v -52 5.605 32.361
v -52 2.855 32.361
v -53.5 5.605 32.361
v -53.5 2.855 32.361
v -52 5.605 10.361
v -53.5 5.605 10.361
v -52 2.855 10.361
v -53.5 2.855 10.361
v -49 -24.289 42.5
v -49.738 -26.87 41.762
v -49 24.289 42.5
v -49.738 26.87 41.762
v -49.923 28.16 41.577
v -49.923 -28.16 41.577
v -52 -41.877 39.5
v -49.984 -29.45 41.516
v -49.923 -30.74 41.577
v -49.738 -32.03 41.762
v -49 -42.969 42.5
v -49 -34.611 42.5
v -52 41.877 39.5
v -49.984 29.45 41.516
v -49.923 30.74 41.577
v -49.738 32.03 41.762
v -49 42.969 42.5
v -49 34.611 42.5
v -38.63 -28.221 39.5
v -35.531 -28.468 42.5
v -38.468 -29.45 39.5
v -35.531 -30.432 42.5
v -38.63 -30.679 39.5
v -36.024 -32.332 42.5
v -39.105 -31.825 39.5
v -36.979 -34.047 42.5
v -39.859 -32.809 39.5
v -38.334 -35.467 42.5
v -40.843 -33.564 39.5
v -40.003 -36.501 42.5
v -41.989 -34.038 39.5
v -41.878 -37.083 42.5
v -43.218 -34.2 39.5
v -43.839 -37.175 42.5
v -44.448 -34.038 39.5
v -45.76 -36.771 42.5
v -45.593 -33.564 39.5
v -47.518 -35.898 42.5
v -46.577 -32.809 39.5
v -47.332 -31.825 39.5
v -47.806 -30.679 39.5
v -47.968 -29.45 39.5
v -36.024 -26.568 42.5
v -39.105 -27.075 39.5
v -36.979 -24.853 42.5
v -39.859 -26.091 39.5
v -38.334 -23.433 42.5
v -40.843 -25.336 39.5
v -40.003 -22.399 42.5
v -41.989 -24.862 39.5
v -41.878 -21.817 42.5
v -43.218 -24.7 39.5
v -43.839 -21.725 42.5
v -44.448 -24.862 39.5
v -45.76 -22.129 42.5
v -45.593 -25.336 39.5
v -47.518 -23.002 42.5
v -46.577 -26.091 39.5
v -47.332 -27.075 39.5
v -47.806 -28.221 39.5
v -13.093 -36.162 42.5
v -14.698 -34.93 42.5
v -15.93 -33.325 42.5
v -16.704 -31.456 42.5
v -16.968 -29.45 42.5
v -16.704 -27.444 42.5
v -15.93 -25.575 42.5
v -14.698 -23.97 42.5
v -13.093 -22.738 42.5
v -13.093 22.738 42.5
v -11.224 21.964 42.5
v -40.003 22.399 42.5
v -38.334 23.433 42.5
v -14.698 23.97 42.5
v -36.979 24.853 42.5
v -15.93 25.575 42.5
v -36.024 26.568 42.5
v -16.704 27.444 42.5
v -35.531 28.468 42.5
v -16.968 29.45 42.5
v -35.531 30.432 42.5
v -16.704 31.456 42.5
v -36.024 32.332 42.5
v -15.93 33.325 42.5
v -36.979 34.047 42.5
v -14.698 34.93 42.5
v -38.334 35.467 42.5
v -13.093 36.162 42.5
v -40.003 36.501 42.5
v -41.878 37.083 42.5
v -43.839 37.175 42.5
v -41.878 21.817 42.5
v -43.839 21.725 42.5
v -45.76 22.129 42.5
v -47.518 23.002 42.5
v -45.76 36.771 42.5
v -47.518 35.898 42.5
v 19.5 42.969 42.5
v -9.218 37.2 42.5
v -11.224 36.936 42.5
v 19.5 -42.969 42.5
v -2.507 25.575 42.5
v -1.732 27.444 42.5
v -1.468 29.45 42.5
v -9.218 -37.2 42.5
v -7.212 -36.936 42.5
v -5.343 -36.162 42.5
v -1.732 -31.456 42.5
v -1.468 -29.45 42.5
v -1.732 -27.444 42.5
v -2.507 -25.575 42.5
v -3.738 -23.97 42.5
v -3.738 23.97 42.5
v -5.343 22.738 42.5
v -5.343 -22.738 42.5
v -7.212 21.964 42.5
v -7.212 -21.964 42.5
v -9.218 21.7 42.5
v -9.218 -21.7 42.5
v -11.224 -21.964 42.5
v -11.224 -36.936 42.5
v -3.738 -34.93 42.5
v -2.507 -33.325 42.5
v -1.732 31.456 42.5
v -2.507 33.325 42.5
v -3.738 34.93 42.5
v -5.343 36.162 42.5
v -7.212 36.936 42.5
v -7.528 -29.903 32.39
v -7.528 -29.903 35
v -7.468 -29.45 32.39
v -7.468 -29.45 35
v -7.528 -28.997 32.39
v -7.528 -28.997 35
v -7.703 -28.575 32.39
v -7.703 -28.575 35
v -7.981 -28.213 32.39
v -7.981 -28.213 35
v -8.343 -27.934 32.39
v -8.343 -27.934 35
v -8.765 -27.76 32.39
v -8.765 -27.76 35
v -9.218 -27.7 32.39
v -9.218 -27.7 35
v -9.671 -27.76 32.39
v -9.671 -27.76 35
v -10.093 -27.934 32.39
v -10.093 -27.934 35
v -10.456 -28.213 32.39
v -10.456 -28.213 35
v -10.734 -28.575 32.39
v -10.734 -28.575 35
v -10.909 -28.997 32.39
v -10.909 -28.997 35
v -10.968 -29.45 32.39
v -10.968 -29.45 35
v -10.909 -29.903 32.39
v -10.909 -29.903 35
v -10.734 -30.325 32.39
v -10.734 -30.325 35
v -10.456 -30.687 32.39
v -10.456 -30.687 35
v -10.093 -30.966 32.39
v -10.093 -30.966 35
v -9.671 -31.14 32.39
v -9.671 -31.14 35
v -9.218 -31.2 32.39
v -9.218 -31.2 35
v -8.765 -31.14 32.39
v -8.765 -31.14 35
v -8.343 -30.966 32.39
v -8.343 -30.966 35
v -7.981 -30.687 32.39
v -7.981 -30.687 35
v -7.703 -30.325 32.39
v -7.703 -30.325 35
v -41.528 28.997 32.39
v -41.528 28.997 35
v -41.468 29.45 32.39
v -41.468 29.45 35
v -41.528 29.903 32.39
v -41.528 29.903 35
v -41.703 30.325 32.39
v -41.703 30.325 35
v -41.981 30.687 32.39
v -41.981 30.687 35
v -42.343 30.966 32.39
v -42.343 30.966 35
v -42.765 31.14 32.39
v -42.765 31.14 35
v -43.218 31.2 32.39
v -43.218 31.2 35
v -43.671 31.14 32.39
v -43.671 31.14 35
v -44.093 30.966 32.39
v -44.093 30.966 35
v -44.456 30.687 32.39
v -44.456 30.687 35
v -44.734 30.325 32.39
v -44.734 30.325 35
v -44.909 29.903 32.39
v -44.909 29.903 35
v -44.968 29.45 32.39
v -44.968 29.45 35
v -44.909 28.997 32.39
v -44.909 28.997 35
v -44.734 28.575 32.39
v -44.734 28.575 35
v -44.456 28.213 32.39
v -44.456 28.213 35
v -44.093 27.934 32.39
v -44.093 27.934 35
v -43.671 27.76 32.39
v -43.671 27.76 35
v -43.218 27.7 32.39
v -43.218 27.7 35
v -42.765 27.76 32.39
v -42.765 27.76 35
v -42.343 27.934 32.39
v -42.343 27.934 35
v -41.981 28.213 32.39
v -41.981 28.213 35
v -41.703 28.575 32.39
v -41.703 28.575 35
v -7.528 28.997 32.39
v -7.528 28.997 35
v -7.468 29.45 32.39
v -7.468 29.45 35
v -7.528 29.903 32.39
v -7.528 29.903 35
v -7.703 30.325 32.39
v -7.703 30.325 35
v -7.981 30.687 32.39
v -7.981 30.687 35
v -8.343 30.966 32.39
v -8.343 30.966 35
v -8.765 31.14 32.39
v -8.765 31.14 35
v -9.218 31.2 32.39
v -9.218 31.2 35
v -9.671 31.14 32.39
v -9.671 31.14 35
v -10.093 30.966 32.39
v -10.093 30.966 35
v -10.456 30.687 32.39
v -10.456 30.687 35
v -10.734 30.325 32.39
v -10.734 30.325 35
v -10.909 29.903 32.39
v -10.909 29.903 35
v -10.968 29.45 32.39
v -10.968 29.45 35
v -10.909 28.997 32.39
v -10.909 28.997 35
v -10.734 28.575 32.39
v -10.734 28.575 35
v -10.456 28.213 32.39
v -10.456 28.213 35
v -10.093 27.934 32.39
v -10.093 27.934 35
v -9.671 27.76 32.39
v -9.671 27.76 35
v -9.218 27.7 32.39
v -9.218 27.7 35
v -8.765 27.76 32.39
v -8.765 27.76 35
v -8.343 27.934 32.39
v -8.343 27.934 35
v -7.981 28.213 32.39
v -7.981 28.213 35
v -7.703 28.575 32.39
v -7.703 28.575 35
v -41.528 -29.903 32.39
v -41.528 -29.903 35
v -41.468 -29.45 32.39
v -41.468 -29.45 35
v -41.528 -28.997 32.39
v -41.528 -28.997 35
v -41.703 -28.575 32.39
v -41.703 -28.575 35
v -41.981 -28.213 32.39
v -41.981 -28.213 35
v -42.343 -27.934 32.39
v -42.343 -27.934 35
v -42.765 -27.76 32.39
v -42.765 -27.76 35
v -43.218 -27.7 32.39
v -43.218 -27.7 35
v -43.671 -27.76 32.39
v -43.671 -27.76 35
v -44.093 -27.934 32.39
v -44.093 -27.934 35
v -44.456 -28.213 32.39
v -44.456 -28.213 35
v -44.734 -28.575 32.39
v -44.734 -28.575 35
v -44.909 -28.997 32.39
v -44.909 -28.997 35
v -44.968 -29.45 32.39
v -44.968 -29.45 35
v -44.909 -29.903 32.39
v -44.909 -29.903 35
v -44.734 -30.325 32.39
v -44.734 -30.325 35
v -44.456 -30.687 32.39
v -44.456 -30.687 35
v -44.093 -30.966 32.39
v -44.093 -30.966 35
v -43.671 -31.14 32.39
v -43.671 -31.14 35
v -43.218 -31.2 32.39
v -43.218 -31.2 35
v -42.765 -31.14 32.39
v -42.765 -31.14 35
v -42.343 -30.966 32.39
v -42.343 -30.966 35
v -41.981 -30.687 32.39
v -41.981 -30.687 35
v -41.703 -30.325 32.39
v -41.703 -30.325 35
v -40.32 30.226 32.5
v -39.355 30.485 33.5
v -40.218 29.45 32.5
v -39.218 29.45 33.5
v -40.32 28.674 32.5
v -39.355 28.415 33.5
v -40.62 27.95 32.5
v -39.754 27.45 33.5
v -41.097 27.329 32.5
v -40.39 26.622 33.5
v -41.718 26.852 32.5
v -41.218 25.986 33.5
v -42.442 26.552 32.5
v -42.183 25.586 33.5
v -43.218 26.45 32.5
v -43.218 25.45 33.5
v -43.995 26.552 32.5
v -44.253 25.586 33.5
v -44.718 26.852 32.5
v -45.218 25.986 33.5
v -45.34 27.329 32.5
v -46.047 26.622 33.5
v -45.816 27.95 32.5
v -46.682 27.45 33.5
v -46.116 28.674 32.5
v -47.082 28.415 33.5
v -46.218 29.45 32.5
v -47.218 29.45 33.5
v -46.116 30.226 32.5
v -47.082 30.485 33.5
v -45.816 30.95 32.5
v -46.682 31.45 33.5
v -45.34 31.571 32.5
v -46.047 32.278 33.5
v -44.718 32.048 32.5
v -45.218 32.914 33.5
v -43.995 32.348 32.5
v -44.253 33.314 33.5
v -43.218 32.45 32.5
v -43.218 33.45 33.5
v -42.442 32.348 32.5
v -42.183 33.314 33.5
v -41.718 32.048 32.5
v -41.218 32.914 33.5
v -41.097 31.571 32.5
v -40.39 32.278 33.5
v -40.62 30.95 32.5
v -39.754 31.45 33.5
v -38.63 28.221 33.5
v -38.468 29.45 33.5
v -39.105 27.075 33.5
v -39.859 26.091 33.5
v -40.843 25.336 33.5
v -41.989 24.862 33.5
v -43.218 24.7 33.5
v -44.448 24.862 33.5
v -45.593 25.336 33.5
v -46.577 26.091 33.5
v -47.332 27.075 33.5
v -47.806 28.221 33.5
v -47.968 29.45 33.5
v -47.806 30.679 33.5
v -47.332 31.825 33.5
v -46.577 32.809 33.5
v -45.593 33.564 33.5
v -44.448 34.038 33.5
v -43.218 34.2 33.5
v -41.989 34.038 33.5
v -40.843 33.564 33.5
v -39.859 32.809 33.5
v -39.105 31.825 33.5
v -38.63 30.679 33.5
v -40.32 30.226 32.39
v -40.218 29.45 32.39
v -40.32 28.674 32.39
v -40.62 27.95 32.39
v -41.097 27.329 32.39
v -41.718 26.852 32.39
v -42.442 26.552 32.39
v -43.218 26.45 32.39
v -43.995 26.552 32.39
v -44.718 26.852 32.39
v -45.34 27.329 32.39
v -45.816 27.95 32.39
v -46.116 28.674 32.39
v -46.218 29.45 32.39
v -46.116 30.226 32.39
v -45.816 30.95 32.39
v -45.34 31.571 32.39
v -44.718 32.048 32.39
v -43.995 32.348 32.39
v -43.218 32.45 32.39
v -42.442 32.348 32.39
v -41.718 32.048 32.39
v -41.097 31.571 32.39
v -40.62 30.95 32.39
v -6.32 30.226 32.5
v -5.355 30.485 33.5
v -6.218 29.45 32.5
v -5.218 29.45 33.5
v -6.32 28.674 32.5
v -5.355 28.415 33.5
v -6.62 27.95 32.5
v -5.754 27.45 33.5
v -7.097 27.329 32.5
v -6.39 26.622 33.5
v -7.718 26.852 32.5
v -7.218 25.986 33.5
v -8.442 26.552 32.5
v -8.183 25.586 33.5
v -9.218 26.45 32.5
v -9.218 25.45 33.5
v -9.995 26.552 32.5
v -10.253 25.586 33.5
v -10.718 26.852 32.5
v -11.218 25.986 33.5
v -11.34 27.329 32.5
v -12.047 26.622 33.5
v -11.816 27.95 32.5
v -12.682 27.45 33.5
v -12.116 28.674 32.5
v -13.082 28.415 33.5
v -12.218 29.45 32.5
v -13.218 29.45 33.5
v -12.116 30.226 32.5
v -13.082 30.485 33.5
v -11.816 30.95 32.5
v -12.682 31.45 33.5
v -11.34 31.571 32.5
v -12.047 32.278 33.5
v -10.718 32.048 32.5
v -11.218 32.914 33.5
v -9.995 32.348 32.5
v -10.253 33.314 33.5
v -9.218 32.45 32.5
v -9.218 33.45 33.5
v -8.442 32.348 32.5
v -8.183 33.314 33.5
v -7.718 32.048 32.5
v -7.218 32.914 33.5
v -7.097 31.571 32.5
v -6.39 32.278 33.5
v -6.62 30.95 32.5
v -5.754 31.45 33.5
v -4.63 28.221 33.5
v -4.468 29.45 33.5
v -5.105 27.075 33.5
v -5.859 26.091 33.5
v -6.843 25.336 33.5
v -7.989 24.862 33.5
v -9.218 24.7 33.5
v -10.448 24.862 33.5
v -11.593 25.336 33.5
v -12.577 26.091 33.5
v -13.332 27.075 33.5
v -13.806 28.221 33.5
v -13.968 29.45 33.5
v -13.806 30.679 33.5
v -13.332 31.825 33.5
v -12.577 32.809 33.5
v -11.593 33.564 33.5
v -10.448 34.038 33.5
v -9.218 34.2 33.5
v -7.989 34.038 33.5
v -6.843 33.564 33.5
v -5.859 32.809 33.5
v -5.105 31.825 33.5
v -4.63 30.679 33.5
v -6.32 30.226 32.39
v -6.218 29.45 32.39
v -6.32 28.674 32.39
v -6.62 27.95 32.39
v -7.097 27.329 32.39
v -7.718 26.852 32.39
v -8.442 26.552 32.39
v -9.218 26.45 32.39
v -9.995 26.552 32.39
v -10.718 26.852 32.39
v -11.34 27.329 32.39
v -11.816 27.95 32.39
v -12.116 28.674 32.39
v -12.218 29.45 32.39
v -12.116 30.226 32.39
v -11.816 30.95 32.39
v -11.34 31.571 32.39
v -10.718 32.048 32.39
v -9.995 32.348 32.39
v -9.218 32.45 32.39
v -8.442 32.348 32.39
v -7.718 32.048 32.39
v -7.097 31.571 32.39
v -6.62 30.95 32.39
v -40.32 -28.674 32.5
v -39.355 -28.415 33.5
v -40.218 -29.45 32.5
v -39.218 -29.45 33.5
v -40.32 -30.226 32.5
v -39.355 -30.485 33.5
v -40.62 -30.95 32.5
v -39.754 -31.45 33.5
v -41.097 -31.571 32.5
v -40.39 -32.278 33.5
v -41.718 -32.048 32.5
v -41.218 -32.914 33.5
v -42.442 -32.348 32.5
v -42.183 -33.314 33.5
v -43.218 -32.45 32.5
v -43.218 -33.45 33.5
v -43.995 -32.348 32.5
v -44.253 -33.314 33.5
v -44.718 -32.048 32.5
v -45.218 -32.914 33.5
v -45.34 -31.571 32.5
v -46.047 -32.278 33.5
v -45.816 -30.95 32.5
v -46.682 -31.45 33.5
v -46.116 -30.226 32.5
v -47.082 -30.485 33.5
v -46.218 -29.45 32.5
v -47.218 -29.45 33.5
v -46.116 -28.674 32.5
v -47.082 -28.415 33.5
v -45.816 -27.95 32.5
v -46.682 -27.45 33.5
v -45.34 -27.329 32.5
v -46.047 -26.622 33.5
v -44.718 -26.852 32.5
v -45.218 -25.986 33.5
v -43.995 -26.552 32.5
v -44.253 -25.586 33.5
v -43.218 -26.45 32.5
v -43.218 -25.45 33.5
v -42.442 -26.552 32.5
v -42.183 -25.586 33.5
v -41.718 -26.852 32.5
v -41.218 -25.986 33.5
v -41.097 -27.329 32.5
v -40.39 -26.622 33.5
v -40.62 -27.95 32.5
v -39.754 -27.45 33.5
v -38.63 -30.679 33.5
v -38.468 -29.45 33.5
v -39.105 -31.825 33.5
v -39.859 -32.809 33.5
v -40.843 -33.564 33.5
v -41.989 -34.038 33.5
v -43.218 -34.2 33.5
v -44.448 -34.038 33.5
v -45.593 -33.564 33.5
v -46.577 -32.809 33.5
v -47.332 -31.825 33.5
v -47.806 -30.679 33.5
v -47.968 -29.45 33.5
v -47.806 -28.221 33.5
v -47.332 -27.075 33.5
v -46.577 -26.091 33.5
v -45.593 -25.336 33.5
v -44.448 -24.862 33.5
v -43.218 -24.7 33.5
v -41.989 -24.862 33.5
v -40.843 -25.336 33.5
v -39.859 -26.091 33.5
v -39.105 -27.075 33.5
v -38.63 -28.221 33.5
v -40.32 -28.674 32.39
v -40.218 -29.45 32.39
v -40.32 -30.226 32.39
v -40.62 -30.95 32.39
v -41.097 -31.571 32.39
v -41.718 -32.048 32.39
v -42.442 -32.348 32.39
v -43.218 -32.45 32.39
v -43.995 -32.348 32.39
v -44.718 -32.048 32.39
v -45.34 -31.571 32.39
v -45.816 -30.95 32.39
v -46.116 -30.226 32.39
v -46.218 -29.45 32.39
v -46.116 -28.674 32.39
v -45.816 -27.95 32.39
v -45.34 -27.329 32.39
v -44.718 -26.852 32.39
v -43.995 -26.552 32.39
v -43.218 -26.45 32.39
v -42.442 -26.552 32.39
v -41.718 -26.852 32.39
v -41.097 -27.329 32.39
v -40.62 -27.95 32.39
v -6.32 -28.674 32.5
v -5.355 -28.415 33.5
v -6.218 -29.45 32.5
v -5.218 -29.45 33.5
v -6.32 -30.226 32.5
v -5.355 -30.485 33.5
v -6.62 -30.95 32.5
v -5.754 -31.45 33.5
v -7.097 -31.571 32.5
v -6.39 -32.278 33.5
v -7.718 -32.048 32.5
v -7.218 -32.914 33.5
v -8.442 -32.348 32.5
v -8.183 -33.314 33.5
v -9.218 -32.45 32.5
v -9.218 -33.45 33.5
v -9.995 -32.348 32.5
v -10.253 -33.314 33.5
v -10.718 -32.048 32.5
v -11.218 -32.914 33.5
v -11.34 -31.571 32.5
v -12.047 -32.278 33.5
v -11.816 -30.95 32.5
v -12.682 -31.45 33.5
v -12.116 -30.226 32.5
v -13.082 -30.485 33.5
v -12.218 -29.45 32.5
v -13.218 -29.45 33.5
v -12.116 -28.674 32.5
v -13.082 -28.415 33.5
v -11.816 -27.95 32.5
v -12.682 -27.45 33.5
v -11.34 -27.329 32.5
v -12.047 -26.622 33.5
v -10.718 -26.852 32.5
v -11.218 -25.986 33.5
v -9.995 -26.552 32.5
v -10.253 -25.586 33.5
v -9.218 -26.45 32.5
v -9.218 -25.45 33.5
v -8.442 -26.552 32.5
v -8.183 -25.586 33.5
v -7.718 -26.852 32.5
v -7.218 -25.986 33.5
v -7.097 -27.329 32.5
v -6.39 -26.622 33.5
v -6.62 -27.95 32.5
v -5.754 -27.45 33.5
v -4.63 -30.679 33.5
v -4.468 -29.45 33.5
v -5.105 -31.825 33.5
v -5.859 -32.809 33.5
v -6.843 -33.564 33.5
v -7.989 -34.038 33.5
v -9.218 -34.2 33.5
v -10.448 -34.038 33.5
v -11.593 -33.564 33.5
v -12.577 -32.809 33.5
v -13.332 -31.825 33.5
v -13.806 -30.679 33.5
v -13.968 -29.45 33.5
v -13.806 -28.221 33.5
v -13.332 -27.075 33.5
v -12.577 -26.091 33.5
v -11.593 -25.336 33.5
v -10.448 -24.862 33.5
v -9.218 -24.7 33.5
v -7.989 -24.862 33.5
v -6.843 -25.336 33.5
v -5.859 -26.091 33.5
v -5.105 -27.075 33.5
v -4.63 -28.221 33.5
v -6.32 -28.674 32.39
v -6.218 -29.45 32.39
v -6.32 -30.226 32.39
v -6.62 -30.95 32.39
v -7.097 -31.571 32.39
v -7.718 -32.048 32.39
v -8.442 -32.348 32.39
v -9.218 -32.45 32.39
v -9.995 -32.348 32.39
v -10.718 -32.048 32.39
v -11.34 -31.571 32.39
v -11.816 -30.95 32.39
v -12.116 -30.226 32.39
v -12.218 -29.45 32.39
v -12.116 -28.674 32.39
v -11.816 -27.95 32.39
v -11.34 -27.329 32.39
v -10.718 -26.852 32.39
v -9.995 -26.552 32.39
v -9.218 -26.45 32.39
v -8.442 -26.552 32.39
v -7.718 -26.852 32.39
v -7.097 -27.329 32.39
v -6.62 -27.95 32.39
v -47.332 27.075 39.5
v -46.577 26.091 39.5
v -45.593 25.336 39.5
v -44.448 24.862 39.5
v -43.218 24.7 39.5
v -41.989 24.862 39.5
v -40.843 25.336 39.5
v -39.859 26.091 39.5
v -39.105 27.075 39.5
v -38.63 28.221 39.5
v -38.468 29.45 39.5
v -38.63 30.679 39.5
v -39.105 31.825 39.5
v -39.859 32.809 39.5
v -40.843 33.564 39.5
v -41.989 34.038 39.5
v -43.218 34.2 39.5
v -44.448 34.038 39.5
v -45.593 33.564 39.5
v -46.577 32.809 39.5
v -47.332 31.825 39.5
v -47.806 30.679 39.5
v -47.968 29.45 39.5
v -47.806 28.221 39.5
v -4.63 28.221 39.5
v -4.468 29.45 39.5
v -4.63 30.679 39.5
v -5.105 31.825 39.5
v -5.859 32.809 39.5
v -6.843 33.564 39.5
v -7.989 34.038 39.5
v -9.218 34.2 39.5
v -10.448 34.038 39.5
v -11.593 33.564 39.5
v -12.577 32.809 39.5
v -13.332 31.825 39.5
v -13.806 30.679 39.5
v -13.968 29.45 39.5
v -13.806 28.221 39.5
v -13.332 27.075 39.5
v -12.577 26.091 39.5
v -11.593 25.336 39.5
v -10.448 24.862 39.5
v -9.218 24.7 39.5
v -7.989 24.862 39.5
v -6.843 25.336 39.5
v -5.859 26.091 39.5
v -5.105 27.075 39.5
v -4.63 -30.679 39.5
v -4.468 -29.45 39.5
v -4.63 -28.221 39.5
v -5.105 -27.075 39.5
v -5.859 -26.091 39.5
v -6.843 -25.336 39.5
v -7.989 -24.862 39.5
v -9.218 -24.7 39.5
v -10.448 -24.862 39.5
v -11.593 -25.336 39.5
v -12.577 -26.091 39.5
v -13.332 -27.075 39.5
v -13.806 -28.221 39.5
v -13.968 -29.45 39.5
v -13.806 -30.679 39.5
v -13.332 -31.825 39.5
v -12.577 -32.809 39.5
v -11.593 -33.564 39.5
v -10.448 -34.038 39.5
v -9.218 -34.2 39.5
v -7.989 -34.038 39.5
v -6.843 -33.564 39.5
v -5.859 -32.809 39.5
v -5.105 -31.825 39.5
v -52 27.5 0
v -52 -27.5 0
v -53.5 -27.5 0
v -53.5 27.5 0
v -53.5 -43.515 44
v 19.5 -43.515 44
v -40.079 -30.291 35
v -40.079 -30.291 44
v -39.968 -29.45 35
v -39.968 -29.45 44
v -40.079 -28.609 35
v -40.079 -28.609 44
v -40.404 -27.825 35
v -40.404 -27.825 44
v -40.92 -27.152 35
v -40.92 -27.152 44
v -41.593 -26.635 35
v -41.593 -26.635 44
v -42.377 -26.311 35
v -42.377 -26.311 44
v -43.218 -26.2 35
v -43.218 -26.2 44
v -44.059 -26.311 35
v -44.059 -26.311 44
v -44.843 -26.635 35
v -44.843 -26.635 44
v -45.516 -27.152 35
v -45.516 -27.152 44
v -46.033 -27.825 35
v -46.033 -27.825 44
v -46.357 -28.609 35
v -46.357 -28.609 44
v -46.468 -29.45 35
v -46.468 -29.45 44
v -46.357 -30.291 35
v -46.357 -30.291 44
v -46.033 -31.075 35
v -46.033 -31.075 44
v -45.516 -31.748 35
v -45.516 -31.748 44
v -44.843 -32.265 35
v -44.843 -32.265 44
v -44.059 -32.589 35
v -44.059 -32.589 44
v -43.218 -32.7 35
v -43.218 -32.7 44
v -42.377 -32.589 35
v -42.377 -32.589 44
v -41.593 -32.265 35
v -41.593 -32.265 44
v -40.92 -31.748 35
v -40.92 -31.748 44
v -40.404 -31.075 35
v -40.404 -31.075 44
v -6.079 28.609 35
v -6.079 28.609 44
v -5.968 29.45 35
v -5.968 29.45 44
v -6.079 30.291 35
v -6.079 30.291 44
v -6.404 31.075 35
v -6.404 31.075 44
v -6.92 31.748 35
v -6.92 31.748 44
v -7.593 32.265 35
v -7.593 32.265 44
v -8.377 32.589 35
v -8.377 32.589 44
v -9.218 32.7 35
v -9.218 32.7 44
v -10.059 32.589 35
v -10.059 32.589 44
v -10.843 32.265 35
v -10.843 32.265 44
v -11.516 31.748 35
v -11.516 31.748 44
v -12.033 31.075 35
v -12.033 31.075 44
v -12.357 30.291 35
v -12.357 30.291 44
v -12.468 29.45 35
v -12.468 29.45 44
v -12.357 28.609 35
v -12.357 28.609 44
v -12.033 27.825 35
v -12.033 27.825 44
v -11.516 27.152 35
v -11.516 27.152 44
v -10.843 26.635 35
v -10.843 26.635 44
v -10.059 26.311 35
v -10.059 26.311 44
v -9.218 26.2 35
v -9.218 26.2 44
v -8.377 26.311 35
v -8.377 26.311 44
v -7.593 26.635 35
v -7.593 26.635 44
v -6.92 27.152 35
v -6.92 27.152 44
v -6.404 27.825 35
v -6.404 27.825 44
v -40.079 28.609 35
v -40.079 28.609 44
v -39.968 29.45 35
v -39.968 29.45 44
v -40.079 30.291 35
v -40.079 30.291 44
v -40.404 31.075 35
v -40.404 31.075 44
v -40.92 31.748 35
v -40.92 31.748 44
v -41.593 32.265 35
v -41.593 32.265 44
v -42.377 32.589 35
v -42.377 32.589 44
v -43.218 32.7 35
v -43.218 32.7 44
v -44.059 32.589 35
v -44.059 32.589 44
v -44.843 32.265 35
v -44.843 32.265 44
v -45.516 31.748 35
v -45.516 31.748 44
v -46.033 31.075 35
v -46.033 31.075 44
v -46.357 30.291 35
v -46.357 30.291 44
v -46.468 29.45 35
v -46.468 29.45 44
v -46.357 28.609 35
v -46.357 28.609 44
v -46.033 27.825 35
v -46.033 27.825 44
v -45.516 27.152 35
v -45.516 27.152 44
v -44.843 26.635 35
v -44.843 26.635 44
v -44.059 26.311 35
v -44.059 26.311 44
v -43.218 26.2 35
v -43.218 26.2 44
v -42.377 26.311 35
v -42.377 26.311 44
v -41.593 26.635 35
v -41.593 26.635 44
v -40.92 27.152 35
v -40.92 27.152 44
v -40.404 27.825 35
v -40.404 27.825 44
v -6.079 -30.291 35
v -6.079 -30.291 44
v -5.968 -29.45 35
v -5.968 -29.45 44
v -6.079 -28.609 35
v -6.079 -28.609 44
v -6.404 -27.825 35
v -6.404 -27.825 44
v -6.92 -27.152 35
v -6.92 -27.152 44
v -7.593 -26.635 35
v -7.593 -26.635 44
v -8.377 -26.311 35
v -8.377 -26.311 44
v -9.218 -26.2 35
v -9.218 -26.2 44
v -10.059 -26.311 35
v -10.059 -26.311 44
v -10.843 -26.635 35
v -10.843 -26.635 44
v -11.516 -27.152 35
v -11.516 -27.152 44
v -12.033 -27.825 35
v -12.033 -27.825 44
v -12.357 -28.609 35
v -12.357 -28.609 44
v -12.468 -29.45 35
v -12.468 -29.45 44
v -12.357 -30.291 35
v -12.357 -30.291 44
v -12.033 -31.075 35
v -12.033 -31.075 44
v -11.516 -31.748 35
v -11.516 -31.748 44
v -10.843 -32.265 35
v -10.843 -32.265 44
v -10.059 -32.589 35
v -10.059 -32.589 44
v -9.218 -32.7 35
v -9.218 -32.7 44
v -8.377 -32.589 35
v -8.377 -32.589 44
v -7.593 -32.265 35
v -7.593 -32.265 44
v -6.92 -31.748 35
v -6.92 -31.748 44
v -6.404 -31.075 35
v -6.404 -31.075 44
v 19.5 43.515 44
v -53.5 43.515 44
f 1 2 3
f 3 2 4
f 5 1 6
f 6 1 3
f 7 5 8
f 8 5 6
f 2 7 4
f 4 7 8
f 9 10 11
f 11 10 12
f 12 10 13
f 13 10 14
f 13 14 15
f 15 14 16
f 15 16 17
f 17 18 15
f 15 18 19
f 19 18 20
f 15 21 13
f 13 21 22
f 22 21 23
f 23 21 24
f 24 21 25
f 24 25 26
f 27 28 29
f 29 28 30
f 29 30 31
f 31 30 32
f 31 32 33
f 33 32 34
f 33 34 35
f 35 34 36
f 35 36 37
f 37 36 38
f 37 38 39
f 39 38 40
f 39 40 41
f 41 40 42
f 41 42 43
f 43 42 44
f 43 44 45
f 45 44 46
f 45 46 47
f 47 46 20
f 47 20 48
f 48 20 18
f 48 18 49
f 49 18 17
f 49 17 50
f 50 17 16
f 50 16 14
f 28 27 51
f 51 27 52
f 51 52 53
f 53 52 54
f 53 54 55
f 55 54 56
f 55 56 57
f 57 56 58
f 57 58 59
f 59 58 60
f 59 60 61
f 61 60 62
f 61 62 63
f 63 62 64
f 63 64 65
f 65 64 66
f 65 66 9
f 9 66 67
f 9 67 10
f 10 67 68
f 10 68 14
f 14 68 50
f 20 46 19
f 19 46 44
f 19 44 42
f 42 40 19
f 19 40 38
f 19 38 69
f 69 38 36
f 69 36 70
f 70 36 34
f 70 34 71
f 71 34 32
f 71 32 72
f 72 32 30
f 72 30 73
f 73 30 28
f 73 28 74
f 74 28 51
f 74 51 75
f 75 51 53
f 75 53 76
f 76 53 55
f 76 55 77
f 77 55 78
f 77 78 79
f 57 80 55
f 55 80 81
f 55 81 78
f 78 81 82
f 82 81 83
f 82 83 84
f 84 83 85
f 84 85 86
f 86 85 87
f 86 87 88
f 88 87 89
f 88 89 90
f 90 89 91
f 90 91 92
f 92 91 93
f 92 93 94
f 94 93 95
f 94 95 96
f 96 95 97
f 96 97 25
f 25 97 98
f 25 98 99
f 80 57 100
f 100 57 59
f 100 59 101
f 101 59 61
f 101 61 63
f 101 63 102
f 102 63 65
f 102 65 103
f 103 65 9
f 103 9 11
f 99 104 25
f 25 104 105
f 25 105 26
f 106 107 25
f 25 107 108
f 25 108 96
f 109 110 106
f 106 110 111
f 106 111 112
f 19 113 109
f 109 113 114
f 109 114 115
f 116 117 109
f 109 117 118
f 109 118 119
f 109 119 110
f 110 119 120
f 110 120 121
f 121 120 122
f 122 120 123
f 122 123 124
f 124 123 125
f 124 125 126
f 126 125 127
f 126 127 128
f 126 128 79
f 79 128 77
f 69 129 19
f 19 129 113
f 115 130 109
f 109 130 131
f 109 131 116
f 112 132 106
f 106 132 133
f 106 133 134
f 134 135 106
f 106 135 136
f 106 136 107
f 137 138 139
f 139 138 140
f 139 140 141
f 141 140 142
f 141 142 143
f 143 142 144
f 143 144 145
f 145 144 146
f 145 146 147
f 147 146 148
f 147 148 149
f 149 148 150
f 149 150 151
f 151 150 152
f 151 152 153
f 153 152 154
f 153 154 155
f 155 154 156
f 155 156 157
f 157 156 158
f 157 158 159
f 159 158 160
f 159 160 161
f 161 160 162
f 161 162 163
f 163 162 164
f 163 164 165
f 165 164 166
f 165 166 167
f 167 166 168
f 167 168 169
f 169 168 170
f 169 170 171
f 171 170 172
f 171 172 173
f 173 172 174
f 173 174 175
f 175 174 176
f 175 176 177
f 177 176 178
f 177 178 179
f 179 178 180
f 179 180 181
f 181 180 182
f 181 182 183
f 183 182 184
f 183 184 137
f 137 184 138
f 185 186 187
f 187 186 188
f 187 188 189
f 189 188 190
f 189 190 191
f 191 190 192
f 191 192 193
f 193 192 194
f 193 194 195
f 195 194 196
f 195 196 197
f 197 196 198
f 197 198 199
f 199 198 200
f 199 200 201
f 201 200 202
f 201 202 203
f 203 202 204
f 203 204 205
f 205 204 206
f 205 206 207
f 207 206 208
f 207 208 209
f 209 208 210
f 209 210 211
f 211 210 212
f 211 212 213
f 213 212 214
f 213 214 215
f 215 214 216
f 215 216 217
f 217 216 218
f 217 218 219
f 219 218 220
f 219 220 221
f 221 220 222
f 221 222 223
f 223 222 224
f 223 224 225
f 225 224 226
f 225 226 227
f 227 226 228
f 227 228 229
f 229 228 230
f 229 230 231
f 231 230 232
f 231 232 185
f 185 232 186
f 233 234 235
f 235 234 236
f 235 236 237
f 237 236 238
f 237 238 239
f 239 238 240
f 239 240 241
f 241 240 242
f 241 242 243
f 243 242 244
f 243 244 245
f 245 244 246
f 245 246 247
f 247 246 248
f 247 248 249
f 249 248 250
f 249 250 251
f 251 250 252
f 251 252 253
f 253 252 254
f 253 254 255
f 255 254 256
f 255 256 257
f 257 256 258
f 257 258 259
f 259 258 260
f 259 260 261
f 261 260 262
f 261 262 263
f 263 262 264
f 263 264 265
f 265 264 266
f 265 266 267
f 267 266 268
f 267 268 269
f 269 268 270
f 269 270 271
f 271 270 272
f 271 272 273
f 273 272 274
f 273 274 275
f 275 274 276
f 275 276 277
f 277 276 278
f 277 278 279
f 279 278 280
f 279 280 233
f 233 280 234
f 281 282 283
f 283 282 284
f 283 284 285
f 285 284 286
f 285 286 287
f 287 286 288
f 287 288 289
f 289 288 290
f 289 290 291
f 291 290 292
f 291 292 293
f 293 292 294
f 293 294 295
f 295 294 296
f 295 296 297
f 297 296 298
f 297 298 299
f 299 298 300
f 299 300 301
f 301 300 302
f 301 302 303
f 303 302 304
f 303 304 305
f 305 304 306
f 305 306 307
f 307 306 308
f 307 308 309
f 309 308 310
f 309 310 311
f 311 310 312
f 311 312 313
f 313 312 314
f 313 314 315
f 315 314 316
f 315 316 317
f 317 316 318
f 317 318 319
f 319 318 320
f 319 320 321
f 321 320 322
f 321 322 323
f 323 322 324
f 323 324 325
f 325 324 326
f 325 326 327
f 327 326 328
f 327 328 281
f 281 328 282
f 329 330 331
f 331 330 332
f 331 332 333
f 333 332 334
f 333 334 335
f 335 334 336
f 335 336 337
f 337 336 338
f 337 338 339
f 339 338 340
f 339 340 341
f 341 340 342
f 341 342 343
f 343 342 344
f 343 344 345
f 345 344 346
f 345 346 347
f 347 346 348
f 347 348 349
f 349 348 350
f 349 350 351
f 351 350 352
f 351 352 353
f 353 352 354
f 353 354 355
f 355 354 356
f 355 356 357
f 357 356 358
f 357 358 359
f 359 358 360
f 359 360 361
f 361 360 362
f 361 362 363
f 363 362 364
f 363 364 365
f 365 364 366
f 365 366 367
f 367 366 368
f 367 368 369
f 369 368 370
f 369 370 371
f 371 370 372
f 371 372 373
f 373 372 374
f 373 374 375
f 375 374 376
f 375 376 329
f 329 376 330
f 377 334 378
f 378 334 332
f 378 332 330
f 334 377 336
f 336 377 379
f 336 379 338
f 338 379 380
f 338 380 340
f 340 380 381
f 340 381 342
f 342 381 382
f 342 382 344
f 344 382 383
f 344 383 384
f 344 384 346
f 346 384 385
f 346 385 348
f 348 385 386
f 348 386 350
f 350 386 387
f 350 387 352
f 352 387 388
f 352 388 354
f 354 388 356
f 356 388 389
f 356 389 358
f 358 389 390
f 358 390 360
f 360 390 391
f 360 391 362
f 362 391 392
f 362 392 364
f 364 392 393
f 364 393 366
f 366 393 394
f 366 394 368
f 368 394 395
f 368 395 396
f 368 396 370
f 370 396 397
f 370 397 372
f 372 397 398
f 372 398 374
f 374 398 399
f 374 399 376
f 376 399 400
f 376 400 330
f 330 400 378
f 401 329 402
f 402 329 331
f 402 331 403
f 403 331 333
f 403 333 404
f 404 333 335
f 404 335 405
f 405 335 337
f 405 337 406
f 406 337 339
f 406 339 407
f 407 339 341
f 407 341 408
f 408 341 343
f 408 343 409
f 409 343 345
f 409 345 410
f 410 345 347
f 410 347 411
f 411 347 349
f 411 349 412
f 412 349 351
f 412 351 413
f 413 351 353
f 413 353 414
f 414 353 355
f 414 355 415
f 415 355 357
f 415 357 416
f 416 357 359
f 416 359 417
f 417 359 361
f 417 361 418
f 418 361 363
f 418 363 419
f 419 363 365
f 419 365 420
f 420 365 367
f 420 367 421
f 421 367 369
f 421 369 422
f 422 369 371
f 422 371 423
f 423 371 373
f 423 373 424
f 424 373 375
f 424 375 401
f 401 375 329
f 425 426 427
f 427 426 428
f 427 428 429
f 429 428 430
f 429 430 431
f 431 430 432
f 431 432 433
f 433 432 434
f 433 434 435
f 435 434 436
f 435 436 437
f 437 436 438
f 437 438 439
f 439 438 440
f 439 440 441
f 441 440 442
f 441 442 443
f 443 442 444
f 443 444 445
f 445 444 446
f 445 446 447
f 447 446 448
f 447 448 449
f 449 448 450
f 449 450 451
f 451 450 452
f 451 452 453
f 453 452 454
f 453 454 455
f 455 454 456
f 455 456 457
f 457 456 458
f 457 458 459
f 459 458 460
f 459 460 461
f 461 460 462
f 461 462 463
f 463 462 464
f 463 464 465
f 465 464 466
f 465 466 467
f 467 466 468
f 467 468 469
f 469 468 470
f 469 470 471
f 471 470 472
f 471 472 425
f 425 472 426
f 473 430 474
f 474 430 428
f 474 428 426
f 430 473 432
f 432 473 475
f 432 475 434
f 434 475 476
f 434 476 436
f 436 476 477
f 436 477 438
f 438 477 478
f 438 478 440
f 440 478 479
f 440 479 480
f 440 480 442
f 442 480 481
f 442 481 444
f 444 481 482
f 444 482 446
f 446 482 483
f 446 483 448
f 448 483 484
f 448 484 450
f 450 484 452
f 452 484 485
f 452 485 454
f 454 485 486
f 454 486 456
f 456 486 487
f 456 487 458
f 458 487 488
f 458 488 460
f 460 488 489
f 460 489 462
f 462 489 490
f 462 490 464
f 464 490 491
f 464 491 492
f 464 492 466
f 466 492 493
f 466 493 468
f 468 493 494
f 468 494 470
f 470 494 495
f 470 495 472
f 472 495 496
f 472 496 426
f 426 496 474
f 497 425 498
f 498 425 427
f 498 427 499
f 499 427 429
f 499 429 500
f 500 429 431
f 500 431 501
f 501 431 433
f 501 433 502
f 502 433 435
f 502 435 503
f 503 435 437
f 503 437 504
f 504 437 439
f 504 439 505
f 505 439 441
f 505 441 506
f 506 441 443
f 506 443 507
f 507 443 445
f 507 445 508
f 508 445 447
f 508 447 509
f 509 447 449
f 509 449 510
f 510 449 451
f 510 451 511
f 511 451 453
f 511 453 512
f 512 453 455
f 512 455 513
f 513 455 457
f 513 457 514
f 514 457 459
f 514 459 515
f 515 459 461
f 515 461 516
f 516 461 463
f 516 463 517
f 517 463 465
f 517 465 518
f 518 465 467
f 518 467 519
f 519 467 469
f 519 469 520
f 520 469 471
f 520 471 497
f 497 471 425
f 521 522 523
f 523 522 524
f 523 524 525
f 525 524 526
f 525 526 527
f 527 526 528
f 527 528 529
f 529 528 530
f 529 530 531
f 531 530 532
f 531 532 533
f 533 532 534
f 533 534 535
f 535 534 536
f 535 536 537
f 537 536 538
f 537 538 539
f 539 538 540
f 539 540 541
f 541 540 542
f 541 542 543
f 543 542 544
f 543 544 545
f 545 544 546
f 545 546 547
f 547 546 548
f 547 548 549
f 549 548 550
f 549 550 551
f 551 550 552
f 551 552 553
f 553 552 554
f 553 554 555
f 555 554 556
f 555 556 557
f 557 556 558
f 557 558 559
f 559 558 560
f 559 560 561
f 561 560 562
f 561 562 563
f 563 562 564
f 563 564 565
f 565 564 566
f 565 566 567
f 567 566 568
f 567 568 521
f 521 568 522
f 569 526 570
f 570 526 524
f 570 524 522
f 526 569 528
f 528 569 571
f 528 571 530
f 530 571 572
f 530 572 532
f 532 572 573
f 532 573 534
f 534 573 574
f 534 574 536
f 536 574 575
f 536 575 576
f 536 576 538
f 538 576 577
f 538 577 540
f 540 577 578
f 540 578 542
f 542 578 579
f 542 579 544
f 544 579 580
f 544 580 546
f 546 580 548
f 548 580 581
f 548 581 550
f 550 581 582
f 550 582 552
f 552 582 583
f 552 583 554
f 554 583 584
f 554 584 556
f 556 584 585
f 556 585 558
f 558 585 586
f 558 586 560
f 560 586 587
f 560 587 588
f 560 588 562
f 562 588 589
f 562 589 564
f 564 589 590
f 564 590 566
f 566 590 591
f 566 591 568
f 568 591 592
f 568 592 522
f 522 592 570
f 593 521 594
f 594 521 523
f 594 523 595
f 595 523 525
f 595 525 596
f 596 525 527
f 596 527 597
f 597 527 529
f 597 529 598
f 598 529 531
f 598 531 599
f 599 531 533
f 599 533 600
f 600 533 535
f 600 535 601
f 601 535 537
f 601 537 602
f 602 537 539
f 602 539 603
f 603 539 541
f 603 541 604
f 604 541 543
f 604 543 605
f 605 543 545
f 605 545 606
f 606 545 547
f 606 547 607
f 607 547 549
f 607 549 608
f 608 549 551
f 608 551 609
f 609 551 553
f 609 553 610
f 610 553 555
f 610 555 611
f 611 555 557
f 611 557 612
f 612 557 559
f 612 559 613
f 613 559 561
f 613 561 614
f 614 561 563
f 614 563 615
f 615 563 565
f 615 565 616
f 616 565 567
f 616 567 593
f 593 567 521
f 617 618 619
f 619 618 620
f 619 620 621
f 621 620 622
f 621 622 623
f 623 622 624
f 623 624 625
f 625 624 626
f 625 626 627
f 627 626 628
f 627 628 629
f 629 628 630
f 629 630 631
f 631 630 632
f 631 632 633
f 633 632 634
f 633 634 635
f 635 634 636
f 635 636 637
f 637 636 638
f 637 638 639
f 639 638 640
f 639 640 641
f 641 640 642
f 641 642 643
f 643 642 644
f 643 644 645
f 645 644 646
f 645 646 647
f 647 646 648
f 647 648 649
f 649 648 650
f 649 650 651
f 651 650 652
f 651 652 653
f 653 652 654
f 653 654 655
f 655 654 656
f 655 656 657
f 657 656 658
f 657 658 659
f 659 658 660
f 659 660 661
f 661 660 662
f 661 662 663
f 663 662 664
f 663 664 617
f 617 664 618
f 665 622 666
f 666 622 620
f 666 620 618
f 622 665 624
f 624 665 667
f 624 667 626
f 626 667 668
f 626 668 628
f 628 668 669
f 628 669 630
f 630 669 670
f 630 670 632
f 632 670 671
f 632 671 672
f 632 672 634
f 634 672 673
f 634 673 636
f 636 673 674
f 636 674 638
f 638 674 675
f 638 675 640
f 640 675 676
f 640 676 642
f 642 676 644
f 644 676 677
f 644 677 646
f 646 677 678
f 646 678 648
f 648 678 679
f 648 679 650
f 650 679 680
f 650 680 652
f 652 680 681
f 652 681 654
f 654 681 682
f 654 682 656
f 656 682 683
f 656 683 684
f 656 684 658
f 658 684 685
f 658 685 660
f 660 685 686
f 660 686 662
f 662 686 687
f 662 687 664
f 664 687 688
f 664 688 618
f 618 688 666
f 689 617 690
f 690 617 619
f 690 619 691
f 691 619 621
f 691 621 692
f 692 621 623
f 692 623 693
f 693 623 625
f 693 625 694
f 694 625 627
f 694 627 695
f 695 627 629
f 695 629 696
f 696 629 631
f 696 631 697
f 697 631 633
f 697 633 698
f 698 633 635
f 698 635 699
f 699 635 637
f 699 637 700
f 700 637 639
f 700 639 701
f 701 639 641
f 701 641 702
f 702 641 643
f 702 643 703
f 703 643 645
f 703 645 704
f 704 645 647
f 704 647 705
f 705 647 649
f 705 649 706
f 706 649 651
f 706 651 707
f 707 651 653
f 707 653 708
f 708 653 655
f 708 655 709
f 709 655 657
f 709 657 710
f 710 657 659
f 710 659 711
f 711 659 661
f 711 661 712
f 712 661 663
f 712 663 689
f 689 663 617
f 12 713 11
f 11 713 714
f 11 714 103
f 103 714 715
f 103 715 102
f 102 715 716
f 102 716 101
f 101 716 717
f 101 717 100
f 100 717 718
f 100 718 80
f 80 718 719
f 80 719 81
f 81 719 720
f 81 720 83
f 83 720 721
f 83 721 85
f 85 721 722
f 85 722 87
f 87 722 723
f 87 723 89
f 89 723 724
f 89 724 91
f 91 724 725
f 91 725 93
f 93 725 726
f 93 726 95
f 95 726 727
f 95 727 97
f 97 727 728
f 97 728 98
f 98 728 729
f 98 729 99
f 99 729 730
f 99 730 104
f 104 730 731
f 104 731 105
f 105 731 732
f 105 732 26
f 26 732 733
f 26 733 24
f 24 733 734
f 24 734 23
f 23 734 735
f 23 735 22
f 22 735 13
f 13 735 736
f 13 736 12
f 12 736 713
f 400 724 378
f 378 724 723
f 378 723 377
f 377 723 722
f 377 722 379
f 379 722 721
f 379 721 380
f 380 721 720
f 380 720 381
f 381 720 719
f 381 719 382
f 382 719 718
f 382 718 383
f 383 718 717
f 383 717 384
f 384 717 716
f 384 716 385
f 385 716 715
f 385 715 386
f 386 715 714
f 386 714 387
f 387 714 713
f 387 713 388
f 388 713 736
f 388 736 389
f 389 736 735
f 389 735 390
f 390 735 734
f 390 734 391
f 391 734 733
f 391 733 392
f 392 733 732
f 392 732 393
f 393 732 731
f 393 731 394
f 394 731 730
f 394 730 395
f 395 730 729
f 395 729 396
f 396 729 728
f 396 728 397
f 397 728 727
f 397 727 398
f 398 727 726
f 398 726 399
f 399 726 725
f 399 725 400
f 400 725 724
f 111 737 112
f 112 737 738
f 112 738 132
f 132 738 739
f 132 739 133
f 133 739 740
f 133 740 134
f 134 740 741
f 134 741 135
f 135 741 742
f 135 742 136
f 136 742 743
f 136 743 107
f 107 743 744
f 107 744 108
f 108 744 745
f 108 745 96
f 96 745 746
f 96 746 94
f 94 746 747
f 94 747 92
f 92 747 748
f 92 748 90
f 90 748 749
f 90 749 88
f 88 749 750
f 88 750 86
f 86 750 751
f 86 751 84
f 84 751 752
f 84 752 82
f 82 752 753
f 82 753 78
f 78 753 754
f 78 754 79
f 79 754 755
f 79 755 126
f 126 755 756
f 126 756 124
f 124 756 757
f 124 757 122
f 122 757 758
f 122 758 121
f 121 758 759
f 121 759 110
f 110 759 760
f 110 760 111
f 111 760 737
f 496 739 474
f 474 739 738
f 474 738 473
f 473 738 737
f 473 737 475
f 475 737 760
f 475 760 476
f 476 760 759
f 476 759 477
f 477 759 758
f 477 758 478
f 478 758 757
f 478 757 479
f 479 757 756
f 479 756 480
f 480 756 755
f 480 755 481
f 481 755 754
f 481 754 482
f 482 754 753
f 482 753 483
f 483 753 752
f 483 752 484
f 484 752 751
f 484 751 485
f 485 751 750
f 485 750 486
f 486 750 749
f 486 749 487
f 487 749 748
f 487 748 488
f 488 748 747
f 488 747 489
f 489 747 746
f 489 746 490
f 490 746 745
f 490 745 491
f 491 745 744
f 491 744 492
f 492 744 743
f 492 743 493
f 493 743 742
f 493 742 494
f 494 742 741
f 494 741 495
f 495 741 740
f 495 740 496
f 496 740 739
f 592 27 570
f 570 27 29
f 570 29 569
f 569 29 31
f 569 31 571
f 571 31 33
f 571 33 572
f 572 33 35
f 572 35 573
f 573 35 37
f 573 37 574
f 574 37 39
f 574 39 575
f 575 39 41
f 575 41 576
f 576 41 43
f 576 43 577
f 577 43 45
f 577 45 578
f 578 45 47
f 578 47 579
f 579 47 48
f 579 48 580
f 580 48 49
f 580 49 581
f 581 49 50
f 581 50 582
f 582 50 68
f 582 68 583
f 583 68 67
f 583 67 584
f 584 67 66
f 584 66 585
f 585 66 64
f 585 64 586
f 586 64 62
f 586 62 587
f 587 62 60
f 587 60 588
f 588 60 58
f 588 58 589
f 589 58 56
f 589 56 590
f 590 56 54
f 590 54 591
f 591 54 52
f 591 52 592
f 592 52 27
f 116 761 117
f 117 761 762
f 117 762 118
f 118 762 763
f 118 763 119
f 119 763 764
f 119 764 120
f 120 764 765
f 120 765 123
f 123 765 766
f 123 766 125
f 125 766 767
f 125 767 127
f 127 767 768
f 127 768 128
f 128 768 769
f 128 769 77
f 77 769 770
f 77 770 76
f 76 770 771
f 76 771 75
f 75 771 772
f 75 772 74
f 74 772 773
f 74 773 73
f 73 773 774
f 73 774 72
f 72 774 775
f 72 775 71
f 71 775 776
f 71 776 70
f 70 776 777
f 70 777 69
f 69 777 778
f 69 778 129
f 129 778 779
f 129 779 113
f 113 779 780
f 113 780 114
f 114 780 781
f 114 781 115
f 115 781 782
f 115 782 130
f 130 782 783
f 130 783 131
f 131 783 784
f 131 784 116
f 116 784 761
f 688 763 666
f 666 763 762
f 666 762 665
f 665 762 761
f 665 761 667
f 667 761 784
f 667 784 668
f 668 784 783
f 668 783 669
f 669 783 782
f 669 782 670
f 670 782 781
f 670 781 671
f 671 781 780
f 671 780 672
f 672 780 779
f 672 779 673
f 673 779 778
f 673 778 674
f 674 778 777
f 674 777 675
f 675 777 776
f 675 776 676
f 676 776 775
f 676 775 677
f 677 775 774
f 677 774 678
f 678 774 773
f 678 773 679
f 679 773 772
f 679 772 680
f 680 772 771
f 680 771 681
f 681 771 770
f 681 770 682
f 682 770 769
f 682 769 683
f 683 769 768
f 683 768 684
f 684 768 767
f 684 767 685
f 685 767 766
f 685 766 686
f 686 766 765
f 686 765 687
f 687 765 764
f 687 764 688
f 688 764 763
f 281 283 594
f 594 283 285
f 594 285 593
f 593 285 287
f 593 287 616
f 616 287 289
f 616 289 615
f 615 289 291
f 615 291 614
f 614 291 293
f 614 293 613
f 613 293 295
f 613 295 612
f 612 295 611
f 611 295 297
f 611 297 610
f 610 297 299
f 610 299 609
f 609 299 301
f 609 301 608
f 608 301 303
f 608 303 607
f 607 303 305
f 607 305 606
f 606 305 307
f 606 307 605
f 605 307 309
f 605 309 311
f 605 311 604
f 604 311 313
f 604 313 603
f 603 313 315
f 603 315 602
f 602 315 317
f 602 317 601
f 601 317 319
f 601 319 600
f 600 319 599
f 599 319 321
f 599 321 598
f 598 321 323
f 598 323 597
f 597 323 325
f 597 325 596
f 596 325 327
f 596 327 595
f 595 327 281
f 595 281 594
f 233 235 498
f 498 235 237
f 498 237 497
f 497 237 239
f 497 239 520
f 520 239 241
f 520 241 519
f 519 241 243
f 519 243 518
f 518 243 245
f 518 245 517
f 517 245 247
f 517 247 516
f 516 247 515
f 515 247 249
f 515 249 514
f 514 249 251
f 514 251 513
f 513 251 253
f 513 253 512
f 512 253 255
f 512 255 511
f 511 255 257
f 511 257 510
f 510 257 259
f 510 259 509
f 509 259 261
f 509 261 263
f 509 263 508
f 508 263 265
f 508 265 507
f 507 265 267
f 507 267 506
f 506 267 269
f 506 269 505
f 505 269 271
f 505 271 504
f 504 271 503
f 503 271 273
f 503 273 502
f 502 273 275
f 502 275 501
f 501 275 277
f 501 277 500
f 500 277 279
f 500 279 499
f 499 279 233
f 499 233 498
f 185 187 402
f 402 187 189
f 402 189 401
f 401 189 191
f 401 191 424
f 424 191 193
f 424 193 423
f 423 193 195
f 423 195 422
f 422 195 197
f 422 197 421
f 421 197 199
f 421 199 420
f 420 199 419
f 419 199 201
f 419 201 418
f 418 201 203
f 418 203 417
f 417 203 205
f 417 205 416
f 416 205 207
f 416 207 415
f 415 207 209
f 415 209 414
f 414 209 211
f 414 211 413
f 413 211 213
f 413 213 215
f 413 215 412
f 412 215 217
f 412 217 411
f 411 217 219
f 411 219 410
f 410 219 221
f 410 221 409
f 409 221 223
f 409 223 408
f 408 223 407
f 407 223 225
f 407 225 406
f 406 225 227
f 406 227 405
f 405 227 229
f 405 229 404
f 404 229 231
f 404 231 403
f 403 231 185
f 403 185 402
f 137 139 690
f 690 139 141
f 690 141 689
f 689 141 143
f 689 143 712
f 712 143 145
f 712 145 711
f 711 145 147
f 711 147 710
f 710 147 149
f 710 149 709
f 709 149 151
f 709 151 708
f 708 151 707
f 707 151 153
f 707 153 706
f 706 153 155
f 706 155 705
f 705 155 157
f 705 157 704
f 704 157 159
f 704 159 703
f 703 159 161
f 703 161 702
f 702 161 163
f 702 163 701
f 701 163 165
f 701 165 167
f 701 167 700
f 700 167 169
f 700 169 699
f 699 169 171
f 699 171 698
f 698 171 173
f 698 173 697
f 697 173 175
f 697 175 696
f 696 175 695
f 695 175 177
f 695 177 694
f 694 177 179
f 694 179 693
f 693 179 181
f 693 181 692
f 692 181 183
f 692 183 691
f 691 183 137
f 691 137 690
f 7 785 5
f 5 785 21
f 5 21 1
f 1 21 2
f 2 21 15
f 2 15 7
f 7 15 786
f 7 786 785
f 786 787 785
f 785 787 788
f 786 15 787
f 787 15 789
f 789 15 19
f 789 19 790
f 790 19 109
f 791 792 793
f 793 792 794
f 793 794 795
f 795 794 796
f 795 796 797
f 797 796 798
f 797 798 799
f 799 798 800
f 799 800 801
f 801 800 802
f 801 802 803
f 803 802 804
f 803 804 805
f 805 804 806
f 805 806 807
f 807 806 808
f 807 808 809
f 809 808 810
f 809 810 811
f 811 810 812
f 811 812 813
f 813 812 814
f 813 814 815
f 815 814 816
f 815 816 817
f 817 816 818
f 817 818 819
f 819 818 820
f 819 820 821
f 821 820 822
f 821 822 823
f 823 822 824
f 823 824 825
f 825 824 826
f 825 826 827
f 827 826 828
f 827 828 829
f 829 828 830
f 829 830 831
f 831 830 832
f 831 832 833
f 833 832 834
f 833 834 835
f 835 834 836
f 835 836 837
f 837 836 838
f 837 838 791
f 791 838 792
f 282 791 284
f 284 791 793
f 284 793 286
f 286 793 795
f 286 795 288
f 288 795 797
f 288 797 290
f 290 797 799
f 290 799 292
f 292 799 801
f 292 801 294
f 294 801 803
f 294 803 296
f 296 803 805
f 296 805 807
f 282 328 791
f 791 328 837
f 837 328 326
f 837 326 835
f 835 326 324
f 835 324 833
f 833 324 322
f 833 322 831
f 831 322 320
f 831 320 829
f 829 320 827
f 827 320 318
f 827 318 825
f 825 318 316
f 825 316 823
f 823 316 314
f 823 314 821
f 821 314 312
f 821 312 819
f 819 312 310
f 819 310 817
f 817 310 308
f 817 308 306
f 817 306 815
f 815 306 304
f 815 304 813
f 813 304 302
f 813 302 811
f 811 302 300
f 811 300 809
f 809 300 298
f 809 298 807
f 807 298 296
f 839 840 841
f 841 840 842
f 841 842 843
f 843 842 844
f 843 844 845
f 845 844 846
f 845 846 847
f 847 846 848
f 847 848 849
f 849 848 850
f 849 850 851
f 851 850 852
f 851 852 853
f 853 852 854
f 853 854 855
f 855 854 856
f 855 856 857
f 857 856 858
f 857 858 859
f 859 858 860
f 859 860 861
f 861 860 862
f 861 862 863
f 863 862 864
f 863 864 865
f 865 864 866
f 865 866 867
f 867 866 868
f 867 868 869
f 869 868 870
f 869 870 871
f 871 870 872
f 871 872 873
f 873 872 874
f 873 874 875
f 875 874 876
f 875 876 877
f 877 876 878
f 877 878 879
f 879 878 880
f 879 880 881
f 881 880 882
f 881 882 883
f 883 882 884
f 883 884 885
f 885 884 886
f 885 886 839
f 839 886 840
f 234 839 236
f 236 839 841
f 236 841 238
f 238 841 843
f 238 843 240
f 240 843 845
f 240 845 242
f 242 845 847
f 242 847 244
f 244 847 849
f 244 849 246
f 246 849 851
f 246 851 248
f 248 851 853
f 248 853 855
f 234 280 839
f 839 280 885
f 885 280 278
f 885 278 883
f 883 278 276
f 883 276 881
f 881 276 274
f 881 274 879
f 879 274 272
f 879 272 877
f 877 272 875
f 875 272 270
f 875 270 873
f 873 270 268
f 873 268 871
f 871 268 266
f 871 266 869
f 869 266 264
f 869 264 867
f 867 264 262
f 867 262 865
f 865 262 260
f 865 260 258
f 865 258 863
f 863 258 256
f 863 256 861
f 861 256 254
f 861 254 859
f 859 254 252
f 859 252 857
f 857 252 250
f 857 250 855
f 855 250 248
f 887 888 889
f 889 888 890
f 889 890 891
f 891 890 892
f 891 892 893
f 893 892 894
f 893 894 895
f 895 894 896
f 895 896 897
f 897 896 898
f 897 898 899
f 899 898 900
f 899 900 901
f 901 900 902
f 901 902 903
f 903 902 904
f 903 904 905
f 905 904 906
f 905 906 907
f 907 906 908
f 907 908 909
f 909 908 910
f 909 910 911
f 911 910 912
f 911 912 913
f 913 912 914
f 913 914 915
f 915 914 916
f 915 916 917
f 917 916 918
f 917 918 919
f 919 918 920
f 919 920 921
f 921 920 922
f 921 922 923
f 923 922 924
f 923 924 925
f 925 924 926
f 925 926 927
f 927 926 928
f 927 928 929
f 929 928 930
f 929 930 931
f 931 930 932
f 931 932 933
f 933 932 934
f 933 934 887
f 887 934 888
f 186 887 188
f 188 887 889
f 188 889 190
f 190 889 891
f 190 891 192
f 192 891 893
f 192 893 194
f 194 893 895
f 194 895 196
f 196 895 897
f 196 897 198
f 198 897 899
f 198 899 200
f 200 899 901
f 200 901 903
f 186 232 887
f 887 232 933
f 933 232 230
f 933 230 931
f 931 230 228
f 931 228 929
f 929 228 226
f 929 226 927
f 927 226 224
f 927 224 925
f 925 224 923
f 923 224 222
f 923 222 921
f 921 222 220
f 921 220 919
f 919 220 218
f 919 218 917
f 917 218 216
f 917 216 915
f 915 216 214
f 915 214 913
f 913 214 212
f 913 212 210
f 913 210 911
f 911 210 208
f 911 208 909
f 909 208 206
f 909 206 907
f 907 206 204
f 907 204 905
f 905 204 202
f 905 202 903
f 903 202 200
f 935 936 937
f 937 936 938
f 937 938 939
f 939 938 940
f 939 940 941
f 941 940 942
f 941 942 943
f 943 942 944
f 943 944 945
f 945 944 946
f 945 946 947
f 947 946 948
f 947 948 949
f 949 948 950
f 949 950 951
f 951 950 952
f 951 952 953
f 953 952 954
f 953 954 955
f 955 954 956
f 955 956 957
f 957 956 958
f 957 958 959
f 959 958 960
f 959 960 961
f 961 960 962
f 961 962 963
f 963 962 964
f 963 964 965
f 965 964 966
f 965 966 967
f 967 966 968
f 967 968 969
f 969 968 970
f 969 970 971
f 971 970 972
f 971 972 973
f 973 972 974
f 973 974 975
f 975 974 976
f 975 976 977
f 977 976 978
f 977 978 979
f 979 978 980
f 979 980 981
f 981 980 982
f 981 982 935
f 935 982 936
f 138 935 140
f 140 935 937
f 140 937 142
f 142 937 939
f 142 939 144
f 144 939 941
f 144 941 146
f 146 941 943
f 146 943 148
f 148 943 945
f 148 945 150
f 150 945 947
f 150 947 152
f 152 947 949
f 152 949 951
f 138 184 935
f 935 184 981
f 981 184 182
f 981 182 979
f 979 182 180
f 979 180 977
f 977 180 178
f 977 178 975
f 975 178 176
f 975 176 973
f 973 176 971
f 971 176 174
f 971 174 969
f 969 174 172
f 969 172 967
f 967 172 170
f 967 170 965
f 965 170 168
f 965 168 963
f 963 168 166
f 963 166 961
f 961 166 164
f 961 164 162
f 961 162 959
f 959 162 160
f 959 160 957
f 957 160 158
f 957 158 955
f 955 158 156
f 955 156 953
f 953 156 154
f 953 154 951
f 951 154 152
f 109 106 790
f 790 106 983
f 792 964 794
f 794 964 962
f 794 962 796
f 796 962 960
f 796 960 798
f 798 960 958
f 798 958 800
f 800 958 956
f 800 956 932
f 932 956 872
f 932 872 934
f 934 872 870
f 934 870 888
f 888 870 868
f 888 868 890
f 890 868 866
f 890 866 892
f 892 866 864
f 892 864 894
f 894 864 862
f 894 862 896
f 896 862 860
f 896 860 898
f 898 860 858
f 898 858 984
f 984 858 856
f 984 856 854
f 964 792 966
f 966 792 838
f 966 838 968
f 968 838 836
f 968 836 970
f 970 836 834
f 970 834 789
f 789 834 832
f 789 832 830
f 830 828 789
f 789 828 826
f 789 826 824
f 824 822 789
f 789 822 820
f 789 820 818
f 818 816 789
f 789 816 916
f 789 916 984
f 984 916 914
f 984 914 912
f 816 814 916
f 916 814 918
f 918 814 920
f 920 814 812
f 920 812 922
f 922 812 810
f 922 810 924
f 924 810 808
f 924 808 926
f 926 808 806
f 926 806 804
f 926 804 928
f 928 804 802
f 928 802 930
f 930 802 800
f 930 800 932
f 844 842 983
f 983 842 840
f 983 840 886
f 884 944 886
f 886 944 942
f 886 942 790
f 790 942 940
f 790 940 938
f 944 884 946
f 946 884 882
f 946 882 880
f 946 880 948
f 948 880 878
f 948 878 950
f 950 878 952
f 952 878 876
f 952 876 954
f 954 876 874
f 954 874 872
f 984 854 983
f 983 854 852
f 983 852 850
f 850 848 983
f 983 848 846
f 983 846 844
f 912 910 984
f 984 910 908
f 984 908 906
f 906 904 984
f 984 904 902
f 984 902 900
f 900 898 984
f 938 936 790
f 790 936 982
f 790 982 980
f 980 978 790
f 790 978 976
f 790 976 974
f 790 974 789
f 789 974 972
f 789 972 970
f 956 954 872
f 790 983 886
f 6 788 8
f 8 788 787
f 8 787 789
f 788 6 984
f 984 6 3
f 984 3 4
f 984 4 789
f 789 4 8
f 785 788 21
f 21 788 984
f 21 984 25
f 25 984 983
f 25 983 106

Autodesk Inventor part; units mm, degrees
ref_plane "YZ Plane" through (0, 0, 0) normal (1, 0, 0) x (0, 1, 0)
ref_plane "XZ Plane" through (0, 0, 0) normal (0, 1, 0) x (-1, 0, 0)
ref_plane "XY Plane" through (0, 0, 0) normal (0, 0, 1) x (1, 0, 0)
sketch "Sketch1" plane through (0, 0, 0) normal (0, 1, 0) x (-1, 0, 0)
  line L0 (0, 0) -> (53.5, 0)
  line L1 (53.5, 0) -> (53.5, 44)
  line L2 (53.5, 44) -> (-19.5, 44)
  line L3 (-19.5, 44) -> (-19.5, 21)
  line L4 (-19.5, 21) -> (0, 0)
  dimension "d3" = 53.5
  dimension "d4" = 44
  dimension "d5" = 23
  dimension "d6" = 73
extrude "Extrusion1" add sketch "Sketch1" along normal mid plane 55
draft "FaceDraft1" angle 20 pull direction (0, 0, -1) faces at (-11.3333, 27.5, 29.3333) (-11.3333, -27.5, 29.3333) fixed edges at (-26.75, 27.5, 0) (-26.75, -27.5, 0)
sketch "Sketch2" plane through (-53.5, 43.5147, 44) normal (0, 0, 1) x (1, 0, 0)
  circle A0 centre (44.2818, -14.0647) radius 1.5 projected
  circle A1 centre (10.2818, -14.0647) radius 1.5 projected
  circle A2 centre (10.2818, -72.9647) radius 1.5 projected
  circle A3 centre (44.2818, -72.9647) radius 1.5 projected
  point P0 (53.5, -43.5147)
extrude "Extrusion2" cut sketch "Sketch2" against normal blind 10.11
sketch "Sketch3" plane through (-53.5, 43.5147, 44) normal (0, 0, 1) x (1, 0, 0)
  circle A0 centre (44.2818, -14.0647) radius 1.5 projected
  circle A1 centre (44.2818, -14.0647) radius 3.25
  circle A2 centre (10.2818, -14.0647) radius 1.5 projected
  circle A3 centre (10.2818, -14.0647) radius 3.25
  circle A4 centre (10.2818, -72.9647) radius 1.5 projected
  circle A5 centre (10.2818, -72.9647) radius 3.25
  circle A6 centre (44.2818, -72.9647) radius 1.5 projected
  circle A7 centre (44.2818, -72.9647) radius 3.25
  point P0 (53.5, -43.5147)
  dimension "d10" = 6.5
extrude "Extrusion3" cut sketch "Sketch3" against normal blind 9
shell "Shell1" thickness 1.5 removed faces 5 at (19.5, -11.7145, 36.3333) at (13, 9.1667, 14) at (-35.6667, 32.8382, 14.6667) at (-35.6667, -32.8382, 14.6667) at (-17.8333, -9.1667, 0)
chamfer "Chamfer1" distance 3 angle 45 4 edges at (-13.9682, -29.45, 42.5) (-47.9682, -29.45, 42.5) (-13.9682, 29.45, 42.5) (-47.9682, 29.45, 42.5)
chamfer "Chamfer2" distance 1 angle 45 4 edges at (-12.2182, -29.45, 33.5) (-46.2182, -29.45, 33.5) (-12.2182, 29.45, 33.5) (-46.2182, 29.45, 33.5)
sketch "Sketch4" plane through (-9.2182, -29.45, 33.89) normal (0, 0, 1) x (1, 0, 0)
  circle A0 centre (0, 0) radius 1.5 construction
  circle A1 centre (-34, 0) radius 1.5 construction
  circle A2 centre (0, 58.9) radius 1.5 construction
  circle A3 centre (-34, 58.9) radius 1.5 construction
  circle A4 centre (-34, 58.9) radius 1.75
  circle A5 centre (0, 58.9) radius 1.75
  circle A6 centre (0, 0) radius 1.75
  circle A7 centre (-34, 0) radius 1.75
  point P0 (9.2182, 29.45)
  dimension "d19" = 3.5
extrude "Extrusion4" cut sketch "Sketch4" along normal through all both and the other way through all
chamfer "Chamfer3" distance 3 angle 45 1 edges at (-52, 0, 42.5)
sketch "Sketch5" plane through (-53.5, -43.5147, 44) normal (-1, 0, 0) x (0, 0, 1)
  line L0 (-33.6389, 49.1201) -> (-11.6389, 49.1201)
  line L1 (-11.6389, 49.1201) -> (-11.6389, 46.3701)
  line L2 (-11.6389, 46.3701) -> (-33.6389, 46.3701)
  line L3 (-33.6389, 46.3701) -> (-33.6389, 49.1201)
  point P0 (-44, 43.5147)
  dimension "d25" = 22
  dimension "d26" = 2.75
extrude "Extrusion5" cut sketch "Sketch5" against normal blind 9
properties part number "Case 2"
